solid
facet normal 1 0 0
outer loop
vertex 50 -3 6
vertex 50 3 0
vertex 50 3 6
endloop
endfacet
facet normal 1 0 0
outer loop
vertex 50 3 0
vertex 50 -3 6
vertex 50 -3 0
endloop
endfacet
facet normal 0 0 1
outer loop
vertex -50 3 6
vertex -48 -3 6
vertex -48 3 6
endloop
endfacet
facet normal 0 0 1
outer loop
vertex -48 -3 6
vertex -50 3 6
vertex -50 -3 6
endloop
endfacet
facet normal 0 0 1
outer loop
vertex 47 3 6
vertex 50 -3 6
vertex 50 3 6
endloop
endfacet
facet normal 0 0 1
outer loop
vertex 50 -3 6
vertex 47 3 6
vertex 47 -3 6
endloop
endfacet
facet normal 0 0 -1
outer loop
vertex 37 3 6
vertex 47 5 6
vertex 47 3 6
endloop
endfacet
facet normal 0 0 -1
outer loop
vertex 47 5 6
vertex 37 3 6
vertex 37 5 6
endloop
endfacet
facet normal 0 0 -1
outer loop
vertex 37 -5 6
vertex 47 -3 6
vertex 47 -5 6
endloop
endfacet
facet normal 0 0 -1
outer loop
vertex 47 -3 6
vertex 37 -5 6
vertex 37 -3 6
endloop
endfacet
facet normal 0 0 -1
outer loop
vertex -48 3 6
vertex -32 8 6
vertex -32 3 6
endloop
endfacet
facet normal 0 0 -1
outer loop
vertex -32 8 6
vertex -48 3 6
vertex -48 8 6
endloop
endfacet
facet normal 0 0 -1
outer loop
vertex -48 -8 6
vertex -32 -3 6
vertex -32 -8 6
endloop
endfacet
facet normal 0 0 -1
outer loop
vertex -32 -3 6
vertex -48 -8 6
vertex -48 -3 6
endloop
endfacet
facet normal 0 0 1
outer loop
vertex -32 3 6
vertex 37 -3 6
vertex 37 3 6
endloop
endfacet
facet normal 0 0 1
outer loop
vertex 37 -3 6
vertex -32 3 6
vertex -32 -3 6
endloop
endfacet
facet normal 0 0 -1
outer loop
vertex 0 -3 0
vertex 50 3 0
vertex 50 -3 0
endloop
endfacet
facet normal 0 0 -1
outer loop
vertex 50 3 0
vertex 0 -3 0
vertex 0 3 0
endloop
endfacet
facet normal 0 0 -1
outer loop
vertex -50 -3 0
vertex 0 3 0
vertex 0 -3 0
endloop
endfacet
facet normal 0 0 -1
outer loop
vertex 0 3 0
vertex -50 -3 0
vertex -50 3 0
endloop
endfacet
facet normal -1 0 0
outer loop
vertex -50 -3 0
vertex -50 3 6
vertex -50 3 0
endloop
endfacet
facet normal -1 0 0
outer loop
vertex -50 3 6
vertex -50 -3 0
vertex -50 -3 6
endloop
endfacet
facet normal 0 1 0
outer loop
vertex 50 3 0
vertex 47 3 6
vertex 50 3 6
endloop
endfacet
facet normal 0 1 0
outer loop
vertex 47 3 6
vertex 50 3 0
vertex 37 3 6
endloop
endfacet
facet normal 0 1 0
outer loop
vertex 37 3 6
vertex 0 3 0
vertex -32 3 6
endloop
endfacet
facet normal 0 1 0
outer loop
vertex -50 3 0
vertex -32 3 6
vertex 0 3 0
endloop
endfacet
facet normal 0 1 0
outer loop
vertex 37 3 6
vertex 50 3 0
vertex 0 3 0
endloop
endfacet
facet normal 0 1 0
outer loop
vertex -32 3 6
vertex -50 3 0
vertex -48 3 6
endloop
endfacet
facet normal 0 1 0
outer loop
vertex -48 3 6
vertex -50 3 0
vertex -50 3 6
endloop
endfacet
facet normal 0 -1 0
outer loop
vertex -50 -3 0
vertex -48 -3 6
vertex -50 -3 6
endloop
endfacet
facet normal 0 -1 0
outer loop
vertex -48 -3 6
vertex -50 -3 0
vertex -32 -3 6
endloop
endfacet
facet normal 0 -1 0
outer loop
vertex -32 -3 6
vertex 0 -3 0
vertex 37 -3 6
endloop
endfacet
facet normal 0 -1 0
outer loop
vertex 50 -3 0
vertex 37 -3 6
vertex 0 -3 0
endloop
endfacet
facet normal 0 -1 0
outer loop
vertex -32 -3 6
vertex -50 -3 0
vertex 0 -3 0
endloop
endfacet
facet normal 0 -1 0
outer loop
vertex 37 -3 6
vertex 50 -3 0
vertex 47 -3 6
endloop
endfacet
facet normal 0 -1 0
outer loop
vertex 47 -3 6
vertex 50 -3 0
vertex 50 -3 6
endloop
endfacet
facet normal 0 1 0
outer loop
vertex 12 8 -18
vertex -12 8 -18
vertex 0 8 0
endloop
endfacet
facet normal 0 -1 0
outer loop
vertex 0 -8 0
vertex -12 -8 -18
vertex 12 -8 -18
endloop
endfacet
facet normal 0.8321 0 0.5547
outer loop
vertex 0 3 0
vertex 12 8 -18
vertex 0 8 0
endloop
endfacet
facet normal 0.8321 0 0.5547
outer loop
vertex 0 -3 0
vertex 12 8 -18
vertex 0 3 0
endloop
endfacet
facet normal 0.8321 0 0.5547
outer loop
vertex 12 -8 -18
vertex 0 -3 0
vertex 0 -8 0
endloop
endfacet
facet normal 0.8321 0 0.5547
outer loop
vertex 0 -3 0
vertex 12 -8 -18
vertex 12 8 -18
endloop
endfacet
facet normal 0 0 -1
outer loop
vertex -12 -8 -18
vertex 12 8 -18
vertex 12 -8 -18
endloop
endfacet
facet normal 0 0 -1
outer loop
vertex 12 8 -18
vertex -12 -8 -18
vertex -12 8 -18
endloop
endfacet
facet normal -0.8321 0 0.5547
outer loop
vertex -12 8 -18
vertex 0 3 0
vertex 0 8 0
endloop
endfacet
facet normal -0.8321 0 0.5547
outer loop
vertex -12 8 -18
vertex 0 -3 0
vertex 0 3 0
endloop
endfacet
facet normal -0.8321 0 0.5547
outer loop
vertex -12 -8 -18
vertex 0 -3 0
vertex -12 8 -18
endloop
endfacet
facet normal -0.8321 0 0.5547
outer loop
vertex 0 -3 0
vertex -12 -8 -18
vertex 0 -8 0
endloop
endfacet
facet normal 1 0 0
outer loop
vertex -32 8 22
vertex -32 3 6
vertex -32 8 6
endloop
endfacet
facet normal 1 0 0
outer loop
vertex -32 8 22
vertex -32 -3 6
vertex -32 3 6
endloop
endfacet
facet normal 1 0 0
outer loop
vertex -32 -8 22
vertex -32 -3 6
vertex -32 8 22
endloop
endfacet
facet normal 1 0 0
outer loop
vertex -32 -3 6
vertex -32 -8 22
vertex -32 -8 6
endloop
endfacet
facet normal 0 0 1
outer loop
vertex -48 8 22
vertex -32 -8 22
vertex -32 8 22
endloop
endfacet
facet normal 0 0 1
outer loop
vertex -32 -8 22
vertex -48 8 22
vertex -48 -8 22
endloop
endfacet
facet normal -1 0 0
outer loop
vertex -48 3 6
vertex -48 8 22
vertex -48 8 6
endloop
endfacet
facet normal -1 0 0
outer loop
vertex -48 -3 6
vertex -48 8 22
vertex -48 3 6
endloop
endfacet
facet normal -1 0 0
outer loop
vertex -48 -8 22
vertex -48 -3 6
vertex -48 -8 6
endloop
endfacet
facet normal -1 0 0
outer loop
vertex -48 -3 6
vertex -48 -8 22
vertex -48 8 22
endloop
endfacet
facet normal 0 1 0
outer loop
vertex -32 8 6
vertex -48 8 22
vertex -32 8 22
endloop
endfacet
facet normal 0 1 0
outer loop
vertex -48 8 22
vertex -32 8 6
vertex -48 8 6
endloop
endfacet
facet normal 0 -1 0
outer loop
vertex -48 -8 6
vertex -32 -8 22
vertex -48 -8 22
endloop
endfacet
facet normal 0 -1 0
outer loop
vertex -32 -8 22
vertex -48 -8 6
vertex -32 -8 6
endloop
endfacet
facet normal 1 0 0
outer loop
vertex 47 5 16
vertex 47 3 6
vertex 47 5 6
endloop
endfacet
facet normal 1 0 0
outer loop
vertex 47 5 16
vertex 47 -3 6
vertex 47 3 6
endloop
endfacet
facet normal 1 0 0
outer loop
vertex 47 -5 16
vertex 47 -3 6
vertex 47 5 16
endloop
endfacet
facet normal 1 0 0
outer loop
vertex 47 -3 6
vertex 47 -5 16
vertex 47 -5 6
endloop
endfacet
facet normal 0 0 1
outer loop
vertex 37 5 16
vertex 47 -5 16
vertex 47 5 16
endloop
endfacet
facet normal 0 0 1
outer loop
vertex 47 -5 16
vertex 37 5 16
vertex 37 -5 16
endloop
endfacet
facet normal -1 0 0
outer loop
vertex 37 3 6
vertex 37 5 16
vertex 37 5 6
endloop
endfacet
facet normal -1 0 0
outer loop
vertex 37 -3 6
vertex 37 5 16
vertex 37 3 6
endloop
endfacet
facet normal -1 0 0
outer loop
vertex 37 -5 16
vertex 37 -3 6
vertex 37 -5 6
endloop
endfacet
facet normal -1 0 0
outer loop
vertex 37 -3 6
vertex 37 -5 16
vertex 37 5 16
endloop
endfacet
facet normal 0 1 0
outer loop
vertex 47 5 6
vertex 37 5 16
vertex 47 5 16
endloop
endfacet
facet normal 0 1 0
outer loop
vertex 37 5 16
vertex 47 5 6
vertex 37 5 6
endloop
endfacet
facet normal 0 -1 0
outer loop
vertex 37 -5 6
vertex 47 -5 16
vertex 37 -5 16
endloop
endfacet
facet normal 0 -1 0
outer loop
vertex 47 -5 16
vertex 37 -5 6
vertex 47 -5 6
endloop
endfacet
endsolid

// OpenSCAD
// file: _common.scad
// mechanism 共用設定 + 齒輪 module
$fn = 60;

// 簡化齒輪：N 個齒、節圓半徑 r、齒高 h、齒寬 w
module simple_gear(N = 16, r = 20, h = 4, thick = 6) {
  union() {
    // 主圓盤
    cylinder(h = thick, r = r, center = true);
    // 齒（梯形）
    for (i = [0:N-1]) {
      rotate([0, 0, i * 360 / N])
        translate([r, 0, 0])
          linear_extrude(height = thick, center = true)
            polygon([[0, -2.4], [h, -1.4], [h, 1.4], [0, 2.4]]);
    }
    // 中心凸軸
    cylinder(h = thick * 1.4, r = r * 0.18, center = true);
  }
}
// main file
// 槓桿 Lever — 一根桿件 + 三角支點 + 兩端重物
include <_common.scad>

module lever_bar() {
  // 主桿 100×8×6
  color([0.86, 0.15, 0.46])
    translate([-50, -3, 0]) cube([100, 6, 6]);
}

module fulcrum() {
  // 三角支點：底寬 24、高 18，置中在桿正下方（頂點頂住桿底 z = 0）
  // rotate([90,0,0]) 會把拉伸方向 +Z 轉成 −Y，所以 y 要先平移 +8 才會落在 y∈[-8,8]
  color([0.51, 0.09, 0.26])
    translate([0, 8, -18]) rotate([90, 0, 0])
      linear_extrude(height = 16)
        polygon([[-12, 0], [12, 0], [0, 18]]);
}

module weight(size = 12) {
  color([0.32, 0.08, 0.16])
    translate([-size/2, -size/2, 0]) cube([size, size, size]);
}

union() {
  lever_bar();
  fulcrum();
  // 阻力端（左）：較重
  translate([-40, 0, 6]) weight(16);
  // 施力端（右）：較輕但臂長
  translate([42, 0, 6]) weight(10);
}
